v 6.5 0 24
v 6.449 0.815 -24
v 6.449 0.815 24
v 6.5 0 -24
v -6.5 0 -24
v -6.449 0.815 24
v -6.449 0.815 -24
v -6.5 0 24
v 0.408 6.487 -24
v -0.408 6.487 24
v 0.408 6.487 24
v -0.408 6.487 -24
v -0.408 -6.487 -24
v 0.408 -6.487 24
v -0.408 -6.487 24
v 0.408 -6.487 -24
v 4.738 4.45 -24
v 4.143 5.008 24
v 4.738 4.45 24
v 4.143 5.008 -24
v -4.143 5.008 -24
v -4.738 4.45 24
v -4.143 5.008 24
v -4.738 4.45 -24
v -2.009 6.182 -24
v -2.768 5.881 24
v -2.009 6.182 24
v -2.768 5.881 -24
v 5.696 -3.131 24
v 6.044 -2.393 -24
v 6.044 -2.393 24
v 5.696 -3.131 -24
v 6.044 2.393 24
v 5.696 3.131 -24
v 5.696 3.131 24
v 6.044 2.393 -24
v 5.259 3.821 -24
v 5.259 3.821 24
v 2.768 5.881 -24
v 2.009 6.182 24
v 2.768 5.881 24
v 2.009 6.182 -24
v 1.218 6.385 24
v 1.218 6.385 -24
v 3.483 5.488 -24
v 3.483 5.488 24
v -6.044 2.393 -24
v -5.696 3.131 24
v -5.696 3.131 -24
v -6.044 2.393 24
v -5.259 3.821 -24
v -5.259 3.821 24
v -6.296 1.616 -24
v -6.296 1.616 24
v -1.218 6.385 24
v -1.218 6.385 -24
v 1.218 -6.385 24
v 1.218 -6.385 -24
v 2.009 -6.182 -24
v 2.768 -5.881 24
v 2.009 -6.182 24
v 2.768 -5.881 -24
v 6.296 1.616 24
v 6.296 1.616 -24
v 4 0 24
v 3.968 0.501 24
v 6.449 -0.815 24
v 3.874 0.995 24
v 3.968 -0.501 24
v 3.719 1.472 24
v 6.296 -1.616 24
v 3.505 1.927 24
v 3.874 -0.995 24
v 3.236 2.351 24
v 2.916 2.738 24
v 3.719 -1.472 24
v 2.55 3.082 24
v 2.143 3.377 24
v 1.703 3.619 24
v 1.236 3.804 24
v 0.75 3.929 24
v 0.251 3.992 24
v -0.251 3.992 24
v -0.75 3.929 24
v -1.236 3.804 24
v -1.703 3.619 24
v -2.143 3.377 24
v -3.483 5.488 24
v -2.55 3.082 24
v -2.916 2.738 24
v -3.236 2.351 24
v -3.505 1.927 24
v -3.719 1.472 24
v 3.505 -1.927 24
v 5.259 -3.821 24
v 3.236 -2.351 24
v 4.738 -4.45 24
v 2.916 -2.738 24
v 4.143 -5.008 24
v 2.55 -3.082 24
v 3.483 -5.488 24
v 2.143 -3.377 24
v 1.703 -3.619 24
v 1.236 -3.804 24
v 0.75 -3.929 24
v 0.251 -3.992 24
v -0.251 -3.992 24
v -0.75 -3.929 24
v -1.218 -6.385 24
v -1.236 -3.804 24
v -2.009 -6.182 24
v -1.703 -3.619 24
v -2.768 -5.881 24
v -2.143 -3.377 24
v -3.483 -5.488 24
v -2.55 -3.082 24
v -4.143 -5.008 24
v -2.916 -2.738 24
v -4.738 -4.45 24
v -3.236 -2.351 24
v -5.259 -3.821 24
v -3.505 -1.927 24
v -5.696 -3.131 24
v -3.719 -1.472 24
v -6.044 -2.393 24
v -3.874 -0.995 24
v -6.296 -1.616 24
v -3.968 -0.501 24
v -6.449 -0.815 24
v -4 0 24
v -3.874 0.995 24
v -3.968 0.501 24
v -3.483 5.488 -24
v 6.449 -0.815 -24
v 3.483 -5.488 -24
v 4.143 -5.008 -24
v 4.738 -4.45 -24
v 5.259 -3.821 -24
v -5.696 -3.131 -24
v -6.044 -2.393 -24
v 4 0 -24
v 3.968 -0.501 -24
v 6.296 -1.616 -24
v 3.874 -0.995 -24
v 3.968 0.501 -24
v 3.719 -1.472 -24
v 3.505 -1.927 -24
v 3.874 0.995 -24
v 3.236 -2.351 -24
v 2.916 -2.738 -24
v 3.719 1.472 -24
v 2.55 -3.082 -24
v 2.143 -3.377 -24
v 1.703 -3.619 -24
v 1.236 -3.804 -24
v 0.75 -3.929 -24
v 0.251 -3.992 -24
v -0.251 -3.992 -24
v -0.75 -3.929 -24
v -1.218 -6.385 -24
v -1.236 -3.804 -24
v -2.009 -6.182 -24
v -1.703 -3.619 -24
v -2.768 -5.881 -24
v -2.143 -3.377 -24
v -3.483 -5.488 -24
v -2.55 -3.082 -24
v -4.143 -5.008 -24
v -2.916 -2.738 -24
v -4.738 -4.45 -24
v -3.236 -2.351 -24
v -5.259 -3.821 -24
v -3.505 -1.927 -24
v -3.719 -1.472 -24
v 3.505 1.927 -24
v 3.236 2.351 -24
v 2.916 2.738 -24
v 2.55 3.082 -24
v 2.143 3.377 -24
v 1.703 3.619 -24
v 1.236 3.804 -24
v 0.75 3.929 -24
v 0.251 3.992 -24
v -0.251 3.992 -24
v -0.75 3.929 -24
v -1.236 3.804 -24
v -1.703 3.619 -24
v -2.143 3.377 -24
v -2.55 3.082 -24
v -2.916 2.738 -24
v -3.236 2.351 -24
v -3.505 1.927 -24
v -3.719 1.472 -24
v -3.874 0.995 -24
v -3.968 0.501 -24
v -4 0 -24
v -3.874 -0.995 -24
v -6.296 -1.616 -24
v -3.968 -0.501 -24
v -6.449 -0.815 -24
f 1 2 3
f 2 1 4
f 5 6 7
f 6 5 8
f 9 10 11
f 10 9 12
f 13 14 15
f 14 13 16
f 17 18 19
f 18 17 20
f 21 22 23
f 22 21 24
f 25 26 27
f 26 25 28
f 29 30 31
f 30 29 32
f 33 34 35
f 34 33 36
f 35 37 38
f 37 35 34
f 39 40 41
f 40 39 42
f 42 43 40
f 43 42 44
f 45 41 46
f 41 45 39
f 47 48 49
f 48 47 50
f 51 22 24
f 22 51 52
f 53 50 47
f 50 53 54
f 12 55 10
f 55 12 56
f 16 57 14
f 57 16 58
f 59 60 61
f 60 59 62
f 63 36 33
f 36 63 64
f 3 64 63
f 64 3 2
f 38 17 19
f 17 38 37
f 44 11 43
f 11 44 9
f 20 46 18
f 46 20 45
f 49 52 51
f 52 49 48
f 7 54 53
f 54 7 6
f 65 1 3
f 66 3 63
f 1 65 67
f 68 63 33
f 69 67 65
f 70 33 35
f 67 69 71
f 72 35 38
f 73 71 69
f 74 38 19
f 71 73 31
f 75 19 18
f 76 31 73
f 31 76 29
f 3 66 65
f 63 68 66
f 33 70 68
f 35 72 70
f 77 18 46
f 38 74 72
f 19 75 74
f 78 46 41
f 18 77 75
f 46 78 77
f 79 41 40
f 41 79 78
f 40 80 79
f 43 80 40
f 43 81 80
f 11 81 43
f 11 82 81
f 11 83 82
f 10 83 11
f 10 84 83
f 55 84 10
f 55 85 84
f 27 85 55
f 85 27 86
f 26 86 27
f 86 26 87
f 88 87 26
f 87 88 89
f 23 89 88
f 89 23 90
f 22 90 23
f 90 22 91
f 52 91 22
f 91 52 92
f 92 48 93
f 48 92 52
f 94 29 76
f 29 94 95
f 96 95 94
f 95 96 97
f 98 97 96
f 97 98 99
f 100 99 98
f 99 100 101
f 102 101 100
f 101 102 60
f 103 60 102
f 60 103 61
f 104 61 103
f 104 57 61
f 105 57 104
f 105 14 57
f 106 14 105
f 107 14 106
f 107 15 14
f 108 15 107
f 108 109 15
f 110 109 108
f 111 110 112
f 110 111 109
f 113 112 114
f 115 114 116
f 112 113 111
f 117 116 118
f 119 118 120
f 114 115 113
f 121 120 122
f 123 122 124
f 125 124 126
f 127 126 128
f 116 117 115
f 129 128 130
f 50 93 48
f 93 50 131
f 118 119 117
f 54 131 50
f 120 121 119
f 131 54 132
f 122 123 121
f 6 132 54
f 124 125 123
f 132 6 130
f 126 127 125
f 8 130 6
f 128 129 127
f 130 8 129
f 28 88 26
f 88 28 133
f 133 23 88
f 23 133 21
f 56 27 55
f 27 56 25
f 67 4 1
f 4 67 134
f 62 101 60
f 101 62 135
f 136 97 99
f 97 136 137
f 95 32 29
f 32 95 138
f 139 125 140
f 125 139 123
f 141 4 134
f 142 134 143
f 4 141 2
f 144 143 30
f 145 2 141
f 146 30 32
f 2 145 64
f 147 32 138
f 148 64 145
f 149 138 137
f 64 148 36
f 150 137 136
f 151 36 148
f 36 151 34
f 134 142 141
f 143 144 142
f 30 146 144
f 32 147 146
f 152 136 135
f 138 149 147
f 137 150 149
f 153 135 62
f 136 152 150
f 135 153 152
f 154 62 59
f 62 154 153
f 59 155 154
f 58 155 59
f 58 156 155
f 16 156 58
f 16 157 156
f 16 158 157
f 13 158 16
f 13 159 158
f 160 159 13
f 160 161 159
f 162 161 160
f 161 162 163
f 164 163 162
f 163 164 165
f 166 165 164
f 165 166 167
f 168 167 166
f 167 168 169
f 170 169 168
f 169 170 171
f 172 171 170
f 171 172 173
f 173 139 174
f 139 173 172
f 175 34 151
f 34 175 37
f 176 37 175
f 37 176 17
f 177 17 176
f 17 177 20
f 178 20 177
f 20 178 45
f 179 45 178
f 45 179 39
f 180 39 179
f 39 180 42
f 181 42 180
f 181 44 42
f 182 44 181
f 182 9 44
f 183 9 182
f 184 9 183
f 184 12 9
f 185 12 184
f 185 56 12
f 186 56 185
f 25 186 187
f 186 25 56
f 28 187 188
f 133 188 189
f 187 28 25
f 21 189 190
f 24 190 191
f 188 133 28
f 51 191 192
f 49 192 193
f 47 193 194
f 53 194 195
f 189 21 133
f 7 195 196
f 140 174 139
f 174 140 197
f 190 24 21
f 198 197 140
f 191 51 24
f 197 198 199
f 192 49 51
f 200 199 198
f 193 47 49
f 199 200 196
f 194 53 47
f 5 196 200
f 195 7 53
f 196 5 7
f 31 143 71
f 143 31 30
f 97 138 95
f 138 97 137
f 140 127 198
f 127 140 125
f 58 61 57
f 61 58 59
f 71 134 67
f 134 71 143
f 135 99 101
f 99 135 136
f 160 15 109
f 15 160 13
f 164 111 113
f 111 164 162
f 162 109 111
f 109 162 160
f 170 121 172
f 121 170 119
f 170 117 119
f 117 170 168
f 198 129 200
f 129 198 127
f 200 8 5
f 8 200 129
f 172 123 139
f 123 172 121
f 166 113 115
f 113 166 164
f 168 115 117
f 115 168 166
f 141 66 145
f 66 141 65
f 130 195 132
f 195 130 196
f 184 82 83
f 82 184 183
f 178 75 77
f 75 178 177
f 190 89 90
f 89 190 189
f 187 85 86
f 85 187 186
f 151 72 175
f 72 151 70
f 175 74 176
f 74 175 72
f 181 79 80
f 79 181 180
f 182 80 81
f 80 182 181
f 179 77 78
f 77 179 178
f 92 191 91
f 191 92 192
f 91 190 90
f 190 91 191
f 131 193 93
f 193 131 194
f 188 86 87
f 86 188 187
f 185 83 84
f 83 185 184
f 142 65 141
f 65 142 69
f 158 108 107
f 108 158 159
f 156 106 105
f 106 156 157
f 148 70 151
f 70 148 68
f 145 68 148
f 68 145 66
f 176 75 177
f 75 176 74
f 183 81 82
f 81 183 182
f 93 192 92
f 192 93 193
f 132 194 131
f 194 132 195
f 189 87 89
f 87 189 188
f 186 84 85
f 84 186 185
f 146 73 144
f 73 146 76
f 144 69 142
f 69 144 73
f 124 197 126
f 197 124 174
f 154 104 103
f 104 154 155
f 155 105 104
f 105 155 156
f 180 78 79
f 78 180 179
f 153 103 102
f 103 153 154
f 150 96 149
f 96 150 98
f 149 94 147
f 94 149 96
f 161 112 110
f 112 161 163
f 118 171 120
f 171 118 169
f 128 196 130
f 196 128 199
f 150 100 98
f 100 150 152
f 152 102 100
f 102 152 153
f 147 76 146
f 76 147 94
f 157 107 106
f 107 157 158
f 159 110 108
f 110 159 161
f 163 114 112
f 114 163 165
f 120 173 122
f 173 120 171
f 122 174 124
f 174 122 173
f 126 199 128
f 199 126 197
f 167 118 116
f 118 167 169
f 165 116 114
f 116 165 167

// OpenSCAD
$fn = 50;


difference() {
	union() {
		translate(v = [0, 0, -24.0000000000]) {
			cylinder(h = 48, r = 6.5000000000);
		}
	}
	union() {
		translate(v = [0, 0, -100.0000000000]) {
			cylinder(h = 200, r = 4);
		}
	}
}
